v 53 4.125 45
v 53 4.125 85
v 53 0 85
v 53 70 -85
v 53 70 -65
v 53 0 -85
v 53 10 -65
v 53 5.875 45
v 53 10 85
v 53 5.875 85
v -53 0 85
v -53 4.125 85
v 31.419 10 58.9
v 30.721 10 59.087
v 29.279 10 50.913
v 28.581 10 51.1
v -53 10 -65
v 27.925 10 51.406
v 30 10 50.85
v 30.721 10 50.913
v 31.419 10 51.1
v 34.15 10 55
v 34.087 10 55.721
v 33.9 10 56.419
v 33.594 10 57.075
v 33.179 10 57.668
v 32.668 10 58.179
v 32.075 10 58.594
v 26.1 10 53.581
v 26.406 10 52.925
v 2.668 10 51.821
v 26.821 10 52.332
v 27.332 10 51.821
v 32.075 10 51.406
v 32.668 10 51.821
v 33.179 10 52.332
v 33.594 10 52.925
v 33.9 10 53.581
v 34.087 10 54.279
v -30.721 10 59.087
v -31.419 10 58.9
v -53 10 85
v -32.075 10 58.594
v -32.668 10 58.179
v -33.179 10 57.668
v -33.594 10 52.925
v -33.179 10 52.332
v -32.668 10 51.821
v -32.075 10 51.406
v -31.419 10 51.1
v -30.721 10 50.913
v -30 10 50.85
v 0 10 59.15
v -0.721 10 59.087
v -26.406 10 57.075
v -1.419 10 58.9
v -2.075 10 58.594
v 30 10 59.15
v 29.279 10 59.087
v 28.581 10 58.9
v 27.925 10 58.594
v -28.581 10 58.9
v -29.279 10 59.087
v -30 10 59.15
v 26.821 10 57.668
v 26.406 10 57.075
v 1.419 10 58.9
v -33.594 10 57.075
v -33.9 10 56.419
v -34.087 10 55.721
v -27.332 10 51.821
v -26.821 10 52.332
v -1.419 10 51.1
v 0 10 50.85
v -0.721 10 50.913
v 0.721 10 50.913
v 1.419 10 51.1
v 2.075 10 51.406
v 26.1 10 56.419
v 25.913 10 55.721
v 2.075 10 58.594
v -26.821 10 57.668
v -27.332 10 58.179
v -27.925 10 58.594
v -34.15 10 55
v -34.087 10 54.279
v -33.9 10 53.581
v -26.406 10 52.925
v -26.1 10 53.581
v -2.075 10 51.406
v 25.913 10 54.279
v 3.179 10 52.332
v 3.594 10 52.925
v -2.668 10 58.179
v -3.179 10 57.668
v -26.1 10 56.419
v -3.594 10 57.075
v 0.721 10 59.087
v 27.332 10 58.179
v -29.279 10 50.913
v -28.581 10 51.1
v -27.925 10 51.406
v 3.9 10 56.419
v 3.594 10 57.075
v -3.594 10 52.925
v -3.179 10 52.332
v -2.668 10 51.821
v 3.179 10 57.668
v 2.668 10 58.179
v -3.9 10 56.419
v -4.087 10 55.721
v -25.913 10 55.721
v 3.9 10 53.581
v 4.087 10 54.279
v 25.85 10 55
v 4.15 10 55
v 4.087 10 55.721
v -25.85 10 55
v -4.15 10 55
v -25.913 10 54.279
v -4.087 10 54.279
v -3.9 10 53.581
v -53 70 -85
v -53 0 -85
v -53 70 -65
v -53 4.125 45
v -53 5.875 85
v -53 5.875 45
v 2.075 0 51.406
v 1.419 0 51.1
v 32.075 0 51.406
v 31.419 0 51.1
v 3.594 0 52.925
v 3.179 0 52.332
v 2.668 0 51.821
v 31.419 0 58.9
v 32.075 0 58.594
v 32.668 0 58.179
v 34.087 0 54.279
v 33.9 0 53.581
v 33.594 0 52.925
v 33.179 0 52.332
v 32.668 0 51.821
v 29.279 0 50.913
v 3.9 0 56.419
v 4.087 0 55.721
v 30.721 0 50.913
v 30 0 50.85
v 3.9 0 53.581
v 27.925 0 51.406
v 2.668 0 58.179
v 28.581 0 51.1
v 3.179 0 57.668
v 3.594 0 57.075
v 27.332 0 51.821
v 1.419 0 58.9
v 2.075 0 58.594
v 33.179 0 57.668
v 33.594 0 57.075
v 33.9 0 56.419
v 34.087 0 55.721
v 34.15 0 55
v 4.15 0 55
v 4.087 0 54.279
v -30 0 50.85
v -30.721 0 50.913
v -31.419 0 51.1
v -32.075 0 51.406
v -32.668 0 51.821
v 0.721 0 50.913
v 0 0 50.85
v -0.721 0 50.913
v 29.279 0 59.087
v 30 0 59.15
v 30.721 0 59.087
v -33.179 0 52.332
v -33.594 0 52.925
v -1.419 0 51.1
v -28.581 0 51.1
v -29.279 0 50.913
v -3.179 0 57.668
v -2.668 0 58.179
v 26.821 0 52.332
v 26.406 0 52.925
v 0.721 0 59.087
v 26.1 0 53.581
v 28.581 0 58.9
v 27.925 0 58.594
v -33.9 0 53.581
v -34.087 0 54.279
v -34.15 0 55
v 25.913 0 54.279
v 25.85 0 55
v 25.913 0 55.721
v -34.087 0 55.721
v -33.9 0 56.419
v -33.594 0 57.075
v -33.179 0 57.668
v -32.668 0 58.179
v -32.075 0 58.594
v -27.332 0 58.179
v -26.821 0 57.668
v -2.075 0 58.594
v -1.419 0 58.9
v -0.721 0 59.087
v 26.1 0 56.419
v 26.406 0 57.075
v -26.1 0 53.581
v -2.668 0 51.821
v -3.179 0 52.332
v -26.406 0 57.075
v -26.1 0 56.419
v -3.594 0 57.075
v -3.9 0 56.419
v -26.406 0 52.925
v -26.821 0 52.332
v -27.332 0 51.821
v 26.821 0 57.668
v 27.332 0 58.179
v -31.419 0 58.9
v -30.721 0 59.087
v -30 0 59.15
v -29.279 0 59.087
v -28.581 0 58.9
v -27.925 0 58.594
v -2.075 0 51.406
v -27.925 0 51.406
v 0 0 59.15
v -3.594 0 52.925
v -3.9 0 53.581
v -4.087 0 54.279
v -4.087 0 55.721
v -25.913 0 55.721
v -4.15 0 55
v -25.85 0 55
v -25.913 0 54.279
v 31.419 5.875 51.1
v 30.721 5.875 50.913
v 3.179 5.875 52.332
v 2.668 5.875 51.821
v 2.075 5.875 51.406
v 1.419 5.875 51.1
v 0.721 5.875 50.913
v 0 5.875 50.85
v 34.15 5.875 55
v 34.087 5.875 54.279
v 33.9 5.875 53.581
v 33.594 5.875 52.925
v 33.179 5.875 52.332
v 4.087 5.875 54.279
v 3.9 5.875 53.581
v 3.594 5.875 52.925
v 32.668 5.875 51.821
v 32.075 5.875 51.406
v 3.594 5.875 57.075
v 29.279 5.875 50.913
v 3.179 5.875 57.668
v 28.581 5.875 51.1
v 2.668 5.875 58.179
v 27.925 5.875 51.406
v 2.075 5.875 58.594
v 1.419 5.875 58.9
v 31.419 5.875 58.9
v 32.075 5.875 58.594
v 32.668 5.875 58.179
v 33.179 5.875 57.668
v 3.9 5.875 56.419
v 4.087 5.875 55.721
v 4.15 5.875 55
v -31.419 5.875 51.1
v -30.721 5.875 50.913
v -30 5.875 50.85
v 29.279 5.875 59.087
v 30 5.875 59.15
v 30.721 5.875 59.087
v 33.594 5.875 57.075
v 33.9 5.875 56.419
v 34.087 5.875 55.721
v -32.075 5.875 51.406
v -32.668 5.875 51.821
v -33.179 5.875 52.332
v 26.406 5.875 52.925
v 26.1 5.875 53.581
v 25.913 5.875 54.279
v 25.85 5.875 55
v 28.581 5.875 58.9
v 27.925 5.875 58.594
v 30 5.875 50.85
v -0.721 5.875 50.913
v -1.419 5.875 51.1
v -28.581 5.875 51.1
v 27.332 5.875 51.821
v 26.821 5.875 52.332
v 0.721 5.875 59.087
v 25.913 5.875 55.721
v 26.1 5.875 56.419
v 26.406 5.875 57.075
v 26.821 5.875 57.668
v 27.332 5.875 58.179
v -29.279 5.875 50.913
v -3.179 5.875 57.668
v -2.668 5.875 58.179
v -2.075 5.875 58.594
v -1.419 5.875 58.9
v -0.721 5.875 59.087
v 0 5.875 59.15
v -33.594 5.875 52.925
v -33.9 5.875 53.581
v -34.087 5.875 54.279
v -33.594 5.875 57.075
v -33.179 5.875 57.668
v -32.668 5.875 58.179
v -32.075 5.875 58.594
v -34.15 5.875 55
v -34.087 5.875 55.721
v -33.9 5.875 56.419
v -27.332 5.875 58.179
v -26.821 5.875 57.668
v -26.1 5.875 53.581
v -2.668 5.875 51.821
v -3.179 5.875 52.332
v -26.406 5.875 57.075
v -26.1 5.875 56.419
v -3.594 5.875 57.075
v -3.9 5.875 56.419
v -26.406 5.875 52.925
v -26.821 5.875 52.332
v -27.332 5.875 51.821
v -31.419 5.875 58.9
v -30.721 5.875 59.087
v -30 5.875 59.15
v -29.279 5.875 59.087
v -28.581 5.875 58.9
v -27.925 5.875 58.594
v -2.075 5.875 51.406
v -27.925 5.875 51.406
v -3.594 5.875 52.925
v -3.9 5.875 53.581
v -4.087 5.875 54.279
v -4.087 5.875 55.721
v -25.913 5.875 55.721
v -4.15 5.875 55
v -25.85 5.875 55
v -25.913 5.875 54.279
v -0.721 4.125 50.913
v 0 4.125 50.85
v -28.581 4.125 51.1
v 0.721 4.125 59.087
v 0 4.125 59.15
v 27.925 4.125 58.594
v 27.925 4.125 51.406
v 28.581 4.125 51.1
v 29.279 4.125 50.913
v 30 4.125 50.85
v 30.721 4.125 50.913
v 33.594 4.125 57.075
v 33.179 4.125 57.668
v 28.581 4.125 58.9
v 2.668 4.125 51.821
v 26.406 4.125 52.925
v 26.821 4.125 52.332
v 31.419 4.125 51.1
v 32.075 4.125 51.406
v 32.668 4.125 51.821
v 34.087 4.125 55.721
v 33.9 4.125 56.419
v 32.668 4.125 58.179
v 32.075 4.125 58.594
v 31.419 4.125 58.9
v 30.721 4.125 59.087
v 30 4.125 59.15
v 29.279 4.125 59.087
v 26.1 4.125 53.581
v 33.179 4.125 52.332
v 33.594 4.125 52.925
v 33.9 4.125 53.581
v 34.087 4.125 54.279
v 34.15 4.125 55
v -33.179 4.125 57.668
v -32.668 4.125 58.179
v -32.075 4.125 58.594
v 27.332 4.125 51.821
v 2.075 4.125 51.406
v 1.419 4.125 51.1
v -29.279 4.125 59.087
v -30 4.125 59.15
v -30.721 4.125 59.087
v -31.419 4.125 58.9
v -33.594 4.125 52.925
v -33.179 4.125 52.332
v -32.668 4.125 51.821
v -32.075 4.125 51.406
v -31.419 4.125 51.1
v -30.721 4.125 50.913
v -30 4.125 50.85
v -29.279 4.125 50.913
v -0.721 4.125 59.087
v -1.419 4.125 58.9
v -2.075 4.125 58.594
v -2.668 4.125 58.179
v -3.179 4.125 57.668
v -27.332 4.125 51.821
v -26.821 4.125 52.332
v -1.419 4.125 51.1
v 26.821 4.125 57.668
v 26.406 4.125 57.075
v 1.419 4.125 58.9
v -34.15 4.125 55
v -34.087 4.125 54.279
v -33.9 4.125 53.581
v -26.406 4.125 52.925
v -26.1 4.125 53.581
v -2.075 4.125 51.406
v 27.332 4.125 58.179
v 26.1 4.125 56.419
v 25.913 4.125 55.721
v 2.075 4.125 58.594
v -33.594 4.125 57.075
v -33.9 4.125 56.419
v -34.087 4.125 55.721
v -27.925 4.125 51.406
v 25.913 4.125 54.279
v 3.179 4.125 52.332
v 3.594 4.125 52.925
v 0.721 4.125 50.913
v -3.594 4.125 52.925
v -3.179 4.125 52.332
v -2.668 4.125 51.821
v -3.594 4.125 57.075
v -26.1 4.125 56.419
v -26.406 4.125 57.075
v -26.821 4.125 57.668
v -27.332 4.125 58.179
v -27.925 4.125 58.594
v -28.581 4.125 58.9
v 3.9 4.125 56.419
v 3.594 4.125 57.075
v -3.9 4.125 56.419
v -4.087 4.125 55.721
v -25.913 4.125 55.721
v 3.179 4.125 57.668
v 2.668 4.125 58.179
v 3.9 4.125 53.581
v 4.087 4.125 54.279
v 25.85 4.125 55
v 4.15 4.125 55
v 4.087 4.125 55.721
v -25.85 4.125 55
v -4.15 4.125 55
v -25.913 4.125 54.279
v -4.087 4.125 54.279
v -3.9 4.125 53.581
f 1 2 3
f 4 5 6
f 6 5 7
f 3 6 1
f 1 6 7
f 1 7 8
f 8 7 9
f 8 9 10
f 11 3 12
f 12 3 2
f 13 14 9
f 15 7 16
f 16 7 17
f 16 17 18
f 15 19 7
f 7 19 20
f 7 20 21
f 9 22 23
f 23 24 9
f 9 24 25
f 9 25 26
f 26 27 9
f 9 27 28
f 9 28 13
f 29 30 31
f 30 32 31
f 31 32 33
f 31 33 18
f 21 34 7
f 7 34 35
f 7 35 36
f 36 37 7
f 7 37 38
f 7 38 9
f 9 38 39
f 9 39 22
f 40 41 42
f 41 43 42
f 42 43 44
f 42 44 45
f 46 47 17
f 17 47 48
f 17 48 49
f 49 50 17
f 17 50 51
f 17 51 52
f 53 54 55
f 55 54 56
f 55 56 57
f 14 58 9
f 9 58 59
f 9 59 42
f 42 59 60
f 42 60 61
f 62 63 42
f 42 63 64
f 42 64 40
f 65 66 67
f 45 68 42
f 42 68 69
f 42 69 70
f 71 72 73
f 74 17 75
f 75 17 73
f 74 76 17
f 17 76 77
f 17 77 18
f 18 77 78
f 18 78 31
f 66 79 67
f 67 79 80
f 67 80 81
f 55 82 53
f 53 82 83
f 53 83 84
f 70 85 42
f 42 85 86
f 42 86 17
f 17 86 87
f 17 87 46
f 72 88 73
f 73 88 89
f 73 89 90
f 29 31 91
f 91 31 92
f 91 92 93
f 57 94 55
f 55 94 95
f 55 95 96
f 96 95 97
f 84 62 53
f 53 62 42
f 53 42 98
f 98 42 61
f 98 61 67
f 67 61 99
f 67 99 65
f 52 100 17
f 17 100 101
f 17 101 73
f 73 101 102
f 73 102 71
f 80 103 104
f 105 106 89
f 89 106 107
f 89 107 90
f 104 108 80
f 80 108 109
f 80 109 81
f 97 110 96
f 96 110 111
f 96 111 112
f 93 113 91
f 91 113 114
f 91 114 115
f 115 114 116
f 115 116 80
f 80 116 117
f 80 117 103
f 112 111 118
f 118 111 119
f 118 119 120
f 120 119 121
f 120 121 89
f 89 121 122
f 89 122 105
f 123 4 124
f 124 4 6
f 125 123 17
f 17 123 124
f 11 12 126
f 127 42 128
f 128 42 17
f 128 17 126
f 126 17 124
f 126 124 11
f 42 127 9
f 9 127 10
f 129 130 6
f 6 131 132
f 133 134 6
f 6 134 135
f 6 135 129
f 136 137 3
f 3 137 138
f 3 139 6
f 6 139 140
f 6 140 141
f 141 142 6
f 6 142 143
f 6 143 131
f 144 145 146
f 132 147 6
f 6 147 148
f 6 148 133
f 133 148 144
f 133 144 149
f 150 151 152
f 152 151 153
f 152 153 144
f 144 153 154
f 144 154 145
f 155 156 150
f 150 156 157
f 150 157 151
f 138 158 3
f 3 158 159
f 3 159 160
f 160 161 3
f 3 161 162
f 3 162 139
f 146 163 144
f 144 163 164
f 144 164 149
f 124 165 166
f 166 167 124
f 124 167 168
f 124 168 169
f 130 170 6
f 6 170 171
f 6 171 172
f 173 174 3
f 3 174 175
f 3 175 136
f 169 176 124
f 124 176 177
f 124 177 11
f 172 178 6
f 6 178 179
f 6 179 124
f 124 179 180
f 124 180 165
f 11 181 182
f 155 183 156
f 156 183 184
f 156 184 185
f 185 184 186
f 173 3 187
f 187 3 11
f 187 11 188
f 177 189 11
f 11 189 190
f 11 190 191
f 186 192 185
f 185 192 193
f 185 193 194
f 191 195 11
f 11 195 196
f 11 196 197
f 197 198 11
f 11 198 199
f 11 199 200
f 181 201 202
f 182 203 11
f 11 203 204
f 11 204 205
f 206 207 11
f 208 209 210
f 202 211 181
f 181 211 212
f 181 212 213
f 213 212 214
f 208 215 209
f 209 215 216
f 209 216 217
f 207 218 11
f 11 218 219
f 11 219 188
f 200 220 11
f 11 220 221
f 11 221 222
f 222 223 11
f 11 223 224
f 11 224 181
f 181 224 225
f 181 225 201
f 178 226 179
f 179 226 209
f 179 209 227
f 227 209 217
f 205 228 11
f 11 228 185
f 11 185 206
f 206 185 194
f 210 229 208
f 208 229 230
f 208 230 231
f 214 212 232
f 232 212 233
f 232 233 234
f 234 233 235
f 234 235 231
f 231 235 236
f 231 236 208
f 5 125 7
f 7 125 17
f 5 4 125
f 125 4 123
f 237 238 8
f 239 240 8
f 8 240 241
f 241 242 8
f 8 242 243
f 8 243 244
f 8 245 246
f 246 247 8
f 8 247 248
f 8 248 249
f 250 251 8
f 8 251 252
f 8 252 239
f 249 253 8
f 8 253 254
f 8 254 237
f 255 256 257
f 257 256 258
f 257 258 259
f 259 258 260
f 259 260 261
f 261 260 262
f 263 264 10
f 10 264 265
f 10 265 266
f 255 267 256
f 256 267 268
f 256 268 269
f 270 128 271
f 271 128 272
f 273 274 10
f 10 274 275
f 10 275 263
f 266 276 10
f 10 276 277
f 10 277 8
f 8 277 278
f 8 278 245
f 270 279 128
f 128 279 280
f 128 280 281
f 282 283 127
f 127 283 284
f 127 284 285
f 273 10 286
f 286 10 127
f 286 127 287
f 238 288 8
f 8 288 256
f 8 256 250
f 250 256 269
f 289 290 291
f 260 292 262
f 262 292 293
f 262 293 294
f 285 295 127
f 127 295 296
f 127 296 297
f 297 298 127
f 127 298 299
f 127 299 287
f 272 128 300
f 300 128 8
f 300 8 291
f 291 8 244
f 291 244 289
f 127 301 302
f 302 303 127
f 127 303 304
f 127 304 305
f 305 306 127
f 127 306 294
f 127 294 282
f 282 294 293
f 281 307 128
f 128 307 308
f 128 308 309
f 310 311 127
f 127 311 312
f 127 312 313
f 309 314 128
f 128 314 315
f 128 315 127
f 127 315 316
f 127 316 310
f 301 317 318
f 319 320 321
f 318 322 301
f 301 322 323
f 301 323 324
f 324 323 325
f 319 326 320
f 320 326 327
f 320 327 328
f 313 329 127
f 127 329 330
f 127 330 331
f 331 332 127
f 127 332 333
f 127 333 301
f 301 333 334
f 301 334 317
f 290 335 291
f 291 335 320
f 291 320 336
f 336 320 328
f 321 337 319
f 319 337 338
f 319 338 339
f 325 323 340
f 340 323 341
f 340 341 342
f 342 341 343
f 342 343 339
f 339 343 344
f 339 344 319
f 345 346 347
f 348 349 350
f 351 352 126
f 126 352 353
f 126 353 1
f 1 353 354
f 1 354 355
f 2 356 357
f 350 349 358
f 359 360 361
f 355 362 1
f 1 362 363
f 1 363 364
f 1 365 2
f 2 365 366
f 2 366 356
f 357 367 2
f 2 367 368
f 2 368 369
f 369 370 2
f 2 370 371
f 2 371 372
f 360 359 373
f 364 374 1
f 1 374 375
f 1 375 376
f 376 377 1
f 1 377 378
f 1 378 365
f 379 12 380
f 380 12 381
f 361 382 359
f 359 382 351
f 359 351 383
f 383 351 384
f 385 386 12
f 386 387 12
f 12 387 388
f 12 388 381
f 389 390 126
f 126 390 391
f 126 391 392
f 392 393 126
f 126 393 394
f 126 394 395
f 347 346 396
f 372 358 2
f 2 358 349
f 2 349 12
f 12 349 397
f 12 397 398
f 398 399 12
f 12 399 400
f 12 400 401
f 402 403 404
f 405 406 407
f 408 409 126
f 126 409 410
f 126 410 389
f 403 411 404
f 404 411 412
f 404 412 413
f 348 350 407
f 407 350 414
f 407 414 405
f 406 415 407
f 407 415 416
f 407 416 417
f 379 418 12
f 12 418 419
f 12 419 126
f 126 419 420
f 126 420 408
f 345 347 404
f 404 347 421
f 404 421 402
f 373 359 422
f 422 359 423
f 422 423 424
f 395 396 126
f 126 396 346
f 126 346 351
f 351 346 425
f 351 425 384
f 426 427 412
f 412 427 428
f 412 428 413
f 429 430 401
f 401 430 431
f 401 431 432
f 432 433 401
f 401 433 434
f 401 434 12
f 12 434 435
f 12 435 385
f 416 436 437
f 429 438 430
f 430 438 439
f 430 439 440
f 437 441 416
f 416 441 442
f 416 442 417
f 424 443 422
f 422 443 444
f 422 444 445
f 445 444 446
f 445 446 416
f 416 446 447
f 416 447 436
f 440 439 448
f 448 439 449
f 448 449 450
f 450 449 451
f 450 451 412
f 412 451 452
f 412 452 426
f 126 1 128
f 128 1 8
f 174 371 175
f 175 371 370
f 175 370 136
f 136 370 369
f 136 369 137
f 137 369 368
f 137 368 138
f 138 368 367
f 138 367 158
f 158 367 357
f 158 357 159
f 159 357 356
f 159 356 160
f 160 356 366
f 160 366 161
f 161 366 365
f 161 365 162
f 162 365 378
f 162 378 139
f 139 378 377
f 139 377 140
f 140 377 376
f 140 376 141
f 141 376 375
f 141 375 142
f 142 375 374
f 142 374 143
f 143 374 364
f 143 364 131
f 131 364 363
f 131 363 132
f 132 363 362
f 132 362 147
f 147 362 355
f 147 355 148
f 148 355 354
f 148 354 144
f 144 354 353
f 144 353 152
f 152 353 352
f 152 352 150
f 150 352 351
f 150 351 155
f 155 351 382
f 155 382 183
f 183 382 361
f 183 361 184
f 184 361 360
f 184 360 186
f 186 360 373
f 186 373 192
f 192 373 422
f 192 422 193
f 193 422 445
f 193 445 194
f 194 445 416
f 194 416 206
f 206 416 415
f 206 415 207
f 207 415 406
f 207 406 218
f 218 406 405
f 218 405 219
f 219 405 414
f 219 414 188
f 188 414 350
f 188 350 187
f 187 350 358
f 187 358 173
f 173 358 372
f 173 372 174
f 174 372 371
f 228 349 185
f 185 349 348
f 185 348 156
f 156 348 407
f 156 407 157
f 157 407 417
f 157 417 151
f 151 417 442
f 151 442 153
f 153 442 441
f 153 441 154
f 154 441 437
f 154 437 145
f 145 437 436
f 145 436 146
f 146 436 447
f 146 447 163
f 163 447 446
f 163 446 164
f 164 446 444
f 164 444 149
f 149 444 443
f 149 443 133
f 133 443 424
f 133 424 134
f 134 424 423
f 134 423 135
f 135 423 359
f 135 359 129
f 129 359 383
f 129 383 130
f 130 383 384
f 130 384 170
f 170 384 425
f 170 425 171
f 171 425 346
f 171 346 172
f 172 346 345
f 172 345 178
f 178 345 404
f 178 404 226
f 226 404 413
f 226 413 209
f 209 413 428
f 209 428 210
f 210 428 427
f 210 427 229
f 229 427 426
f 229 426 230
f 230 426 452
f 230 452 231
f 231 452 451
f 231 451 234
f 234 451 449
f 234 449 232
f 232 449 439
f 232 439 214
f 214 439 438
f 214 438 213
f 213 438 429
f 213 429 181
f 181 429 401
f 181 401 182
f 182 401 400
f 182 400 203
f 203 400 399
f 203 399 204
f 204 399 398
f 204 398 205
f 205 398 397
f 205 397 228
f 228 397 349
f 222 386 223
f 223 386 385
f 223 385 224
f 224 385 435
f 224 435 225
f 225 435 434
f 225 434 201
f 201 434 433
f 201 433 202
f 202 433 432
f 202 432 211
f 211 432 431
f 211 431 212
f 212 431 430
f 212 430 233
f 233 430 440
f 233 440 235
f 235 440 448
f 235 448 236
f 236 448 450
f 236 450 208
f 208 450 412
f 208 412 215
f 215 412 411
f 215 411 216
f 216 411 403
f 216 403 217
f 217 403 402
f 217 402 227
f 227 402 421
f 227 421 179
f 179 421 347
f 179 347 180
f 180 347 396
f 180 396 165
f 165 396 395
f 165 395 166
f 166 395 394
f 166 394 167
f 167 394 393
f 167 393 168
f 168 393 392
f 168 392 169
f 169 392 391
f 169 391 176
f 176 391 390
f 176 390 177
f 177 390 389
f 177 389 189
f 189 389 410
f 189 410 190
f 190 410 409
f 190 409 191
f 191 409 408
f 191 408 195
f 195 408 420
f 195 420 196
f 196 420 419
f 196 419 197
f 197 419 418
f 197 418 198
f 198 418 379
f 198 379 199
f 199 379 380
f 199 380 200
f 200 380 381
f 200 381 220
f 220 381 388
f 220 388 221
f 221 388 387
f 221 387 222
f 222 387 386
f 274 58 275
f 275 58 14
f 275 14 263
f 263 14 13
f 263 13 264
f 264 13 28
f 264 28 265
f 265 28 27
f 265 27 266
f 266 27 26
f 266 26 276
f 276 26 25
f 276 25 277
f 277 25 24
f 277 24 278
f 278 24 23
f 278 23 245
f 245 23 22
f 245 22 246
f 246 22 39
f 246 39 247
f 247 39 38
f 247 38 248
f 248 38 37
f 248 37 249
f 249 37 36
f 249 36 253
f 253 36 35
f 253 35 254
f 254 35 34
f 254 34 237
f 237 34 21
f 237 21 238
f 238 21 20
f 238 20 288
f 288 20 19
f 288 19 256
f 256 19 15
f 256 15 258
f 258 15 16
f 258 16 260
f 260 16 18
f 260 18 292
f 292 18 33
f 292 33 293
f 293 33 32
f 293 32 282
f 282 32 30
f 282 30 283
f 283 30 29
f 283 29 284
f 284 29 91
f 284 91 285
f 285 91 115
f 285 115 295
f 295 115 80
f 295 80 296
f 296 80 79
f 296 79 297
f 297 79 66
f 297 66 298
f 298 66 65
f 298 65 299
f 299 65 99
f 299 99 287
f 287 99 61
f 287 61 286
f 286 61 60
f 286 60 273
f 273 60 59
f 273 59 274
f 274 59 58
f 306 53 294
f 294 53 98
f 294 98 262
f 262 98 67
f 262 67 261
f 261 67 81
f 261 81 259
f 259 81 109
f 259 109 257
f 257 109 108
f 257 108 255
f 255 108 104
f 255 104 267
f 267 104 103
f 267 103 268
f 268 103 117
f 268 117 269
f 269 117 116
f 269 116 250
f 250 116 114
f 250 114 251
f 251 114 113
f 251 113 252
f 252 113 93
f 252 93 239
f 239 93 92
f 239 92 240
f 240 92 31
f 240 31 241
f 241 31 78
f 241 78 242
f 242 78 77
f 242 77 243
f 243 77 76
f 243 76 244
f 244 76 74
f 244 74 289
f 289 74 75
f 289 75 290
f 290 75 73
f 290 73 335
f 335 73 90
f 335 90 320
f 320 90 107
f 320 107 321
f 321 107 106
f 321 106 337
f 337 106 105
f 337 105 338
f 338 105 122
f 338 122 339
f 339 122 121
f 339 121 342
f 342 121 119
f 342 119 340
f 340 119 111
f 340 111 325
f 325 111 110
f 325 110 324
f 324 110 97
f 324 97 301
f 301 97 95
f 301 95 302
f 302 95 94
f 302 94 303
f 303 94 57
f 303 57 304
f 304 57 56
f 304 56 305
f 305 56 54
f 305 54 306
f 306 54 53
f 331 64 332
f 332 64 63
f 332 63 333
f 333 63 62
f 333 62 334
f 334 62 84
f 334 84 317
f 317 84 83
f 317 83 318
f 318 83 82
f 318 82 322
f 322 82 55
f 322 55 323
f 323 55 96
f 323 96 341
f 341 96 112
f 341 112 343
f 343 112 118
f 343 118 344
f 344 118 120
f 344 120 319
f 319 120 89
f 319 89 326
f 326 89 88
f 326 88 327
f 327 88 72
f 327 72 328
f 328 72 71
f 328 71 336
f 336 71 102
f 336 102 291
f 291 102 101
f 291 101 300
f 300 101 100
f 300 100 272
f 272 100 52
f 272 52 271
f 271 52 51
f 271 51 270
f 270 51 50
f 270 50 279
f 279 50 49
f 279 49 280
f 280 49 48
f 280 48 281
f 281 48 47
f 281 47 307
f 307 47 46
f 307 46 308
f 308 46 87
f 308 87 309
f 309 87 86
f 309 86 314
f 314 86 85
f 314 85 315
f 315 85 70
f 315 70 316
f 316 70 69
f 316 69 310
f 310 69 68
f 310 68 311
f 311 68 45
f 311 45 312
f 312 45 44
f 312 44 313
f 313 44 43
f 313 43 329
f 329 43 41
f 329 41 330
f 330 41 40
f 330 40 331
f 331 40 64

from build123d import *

# Parameters (mm, degrees)
SKETCH4_W           = 106
SKETCH4_H           = 170
BOSS_EXTRUDE4_DEPTH = 10
SKETCH5_W           = 106
SKETCH5_H           = 20
BOSS_EXTRUDE5_DEPTH = 60
SKETCH6_W           = 106
SKETCH6_H           = 1.75
CUT_EXTRUDE2_DEPTH  = 40
SKETCH7_R           = 4.15
CUT_EXTRUDE3_DEPTH  = 40
SKETCH8_W           = 106
SKETCH8_H           = 60
CUT_EXTRUDE4_DEPTH  = 40


with BuildPart() as part:
    # Sketch4 → Boss-Extrude4 (new body)
    with BuildSketch(Plane(origin=(0, 0, 0), x_dir=(1, 0, 0), z_dir=(0, 1, 0))):
        Rectangle(SKETCH4_W, SKETCH4_H)
    extrude(amount=BOSS_EXTRUDE4_DEPTH)

    # Sketch5 → Boss-Extrude5 (add)
    with BuildSketch(Plane(origin=(0, 10, 0), x_dir=(1, 0, 0), z_dir=(0, 1, 0))):
        with Locations((0, 75)):
            Rectangle(SKETCH5_W, SKETCH5_H)
        with Locations((0, -75)):
            Rectangle(SKETCH5_W, SKETCH5_H)
    extrude(amount=BOSS_EXTRUDE5_DEPTH)

    # Sketch6 → Cut-Extrude2 (cut)
    with BuildSketch(Plane.XY.offset(85)):
        with Locations((0, 5)):
            Rectangle(SKETCH6_W, SKETCH6_H)
    extrude(amount=-CUT_EXTRUDE2_DEPTH, mode=Mode.SUBTRACT)

    # Sketch7 → Cut-Extrude3 (cut)
    with BuildSketch(Plane(origin=(0, 10, 0), x_dir=(1, 0, 0), z_dir=(0, 1, 0))):
        with Locations(Location((0, -55, 0), (0, 0, 90))):
            Circle(SKETCH7_R)
        with Locations(Location((30, -55, 0), (0, 0, 90))):
            Circle(SKETCH7_R)
        with Locations(Location((-30, -55, 0), (0, 0, 90))):
            Circle(SKETCH7_R)
    extrude(amount=-CUT_EXTRUDE3_DEPTH, mode=Mode.SUBTRACT)

    # Sketch8 → Cut-Extrude4 (cut)
    with BuildSketch(Plane(origin=(0, 0, 65), x_dir=(-1, 0, 0), z_dir=(0, 0, -1))):
        with Locations((0, 40)):
            Rectangle(SKETCH8_W, SKETCH8_H)
    extrude(amount=-CUT_EXTRUDE4_DEPTH, mode=Mode.SUBTRACT)


solid = part.part
